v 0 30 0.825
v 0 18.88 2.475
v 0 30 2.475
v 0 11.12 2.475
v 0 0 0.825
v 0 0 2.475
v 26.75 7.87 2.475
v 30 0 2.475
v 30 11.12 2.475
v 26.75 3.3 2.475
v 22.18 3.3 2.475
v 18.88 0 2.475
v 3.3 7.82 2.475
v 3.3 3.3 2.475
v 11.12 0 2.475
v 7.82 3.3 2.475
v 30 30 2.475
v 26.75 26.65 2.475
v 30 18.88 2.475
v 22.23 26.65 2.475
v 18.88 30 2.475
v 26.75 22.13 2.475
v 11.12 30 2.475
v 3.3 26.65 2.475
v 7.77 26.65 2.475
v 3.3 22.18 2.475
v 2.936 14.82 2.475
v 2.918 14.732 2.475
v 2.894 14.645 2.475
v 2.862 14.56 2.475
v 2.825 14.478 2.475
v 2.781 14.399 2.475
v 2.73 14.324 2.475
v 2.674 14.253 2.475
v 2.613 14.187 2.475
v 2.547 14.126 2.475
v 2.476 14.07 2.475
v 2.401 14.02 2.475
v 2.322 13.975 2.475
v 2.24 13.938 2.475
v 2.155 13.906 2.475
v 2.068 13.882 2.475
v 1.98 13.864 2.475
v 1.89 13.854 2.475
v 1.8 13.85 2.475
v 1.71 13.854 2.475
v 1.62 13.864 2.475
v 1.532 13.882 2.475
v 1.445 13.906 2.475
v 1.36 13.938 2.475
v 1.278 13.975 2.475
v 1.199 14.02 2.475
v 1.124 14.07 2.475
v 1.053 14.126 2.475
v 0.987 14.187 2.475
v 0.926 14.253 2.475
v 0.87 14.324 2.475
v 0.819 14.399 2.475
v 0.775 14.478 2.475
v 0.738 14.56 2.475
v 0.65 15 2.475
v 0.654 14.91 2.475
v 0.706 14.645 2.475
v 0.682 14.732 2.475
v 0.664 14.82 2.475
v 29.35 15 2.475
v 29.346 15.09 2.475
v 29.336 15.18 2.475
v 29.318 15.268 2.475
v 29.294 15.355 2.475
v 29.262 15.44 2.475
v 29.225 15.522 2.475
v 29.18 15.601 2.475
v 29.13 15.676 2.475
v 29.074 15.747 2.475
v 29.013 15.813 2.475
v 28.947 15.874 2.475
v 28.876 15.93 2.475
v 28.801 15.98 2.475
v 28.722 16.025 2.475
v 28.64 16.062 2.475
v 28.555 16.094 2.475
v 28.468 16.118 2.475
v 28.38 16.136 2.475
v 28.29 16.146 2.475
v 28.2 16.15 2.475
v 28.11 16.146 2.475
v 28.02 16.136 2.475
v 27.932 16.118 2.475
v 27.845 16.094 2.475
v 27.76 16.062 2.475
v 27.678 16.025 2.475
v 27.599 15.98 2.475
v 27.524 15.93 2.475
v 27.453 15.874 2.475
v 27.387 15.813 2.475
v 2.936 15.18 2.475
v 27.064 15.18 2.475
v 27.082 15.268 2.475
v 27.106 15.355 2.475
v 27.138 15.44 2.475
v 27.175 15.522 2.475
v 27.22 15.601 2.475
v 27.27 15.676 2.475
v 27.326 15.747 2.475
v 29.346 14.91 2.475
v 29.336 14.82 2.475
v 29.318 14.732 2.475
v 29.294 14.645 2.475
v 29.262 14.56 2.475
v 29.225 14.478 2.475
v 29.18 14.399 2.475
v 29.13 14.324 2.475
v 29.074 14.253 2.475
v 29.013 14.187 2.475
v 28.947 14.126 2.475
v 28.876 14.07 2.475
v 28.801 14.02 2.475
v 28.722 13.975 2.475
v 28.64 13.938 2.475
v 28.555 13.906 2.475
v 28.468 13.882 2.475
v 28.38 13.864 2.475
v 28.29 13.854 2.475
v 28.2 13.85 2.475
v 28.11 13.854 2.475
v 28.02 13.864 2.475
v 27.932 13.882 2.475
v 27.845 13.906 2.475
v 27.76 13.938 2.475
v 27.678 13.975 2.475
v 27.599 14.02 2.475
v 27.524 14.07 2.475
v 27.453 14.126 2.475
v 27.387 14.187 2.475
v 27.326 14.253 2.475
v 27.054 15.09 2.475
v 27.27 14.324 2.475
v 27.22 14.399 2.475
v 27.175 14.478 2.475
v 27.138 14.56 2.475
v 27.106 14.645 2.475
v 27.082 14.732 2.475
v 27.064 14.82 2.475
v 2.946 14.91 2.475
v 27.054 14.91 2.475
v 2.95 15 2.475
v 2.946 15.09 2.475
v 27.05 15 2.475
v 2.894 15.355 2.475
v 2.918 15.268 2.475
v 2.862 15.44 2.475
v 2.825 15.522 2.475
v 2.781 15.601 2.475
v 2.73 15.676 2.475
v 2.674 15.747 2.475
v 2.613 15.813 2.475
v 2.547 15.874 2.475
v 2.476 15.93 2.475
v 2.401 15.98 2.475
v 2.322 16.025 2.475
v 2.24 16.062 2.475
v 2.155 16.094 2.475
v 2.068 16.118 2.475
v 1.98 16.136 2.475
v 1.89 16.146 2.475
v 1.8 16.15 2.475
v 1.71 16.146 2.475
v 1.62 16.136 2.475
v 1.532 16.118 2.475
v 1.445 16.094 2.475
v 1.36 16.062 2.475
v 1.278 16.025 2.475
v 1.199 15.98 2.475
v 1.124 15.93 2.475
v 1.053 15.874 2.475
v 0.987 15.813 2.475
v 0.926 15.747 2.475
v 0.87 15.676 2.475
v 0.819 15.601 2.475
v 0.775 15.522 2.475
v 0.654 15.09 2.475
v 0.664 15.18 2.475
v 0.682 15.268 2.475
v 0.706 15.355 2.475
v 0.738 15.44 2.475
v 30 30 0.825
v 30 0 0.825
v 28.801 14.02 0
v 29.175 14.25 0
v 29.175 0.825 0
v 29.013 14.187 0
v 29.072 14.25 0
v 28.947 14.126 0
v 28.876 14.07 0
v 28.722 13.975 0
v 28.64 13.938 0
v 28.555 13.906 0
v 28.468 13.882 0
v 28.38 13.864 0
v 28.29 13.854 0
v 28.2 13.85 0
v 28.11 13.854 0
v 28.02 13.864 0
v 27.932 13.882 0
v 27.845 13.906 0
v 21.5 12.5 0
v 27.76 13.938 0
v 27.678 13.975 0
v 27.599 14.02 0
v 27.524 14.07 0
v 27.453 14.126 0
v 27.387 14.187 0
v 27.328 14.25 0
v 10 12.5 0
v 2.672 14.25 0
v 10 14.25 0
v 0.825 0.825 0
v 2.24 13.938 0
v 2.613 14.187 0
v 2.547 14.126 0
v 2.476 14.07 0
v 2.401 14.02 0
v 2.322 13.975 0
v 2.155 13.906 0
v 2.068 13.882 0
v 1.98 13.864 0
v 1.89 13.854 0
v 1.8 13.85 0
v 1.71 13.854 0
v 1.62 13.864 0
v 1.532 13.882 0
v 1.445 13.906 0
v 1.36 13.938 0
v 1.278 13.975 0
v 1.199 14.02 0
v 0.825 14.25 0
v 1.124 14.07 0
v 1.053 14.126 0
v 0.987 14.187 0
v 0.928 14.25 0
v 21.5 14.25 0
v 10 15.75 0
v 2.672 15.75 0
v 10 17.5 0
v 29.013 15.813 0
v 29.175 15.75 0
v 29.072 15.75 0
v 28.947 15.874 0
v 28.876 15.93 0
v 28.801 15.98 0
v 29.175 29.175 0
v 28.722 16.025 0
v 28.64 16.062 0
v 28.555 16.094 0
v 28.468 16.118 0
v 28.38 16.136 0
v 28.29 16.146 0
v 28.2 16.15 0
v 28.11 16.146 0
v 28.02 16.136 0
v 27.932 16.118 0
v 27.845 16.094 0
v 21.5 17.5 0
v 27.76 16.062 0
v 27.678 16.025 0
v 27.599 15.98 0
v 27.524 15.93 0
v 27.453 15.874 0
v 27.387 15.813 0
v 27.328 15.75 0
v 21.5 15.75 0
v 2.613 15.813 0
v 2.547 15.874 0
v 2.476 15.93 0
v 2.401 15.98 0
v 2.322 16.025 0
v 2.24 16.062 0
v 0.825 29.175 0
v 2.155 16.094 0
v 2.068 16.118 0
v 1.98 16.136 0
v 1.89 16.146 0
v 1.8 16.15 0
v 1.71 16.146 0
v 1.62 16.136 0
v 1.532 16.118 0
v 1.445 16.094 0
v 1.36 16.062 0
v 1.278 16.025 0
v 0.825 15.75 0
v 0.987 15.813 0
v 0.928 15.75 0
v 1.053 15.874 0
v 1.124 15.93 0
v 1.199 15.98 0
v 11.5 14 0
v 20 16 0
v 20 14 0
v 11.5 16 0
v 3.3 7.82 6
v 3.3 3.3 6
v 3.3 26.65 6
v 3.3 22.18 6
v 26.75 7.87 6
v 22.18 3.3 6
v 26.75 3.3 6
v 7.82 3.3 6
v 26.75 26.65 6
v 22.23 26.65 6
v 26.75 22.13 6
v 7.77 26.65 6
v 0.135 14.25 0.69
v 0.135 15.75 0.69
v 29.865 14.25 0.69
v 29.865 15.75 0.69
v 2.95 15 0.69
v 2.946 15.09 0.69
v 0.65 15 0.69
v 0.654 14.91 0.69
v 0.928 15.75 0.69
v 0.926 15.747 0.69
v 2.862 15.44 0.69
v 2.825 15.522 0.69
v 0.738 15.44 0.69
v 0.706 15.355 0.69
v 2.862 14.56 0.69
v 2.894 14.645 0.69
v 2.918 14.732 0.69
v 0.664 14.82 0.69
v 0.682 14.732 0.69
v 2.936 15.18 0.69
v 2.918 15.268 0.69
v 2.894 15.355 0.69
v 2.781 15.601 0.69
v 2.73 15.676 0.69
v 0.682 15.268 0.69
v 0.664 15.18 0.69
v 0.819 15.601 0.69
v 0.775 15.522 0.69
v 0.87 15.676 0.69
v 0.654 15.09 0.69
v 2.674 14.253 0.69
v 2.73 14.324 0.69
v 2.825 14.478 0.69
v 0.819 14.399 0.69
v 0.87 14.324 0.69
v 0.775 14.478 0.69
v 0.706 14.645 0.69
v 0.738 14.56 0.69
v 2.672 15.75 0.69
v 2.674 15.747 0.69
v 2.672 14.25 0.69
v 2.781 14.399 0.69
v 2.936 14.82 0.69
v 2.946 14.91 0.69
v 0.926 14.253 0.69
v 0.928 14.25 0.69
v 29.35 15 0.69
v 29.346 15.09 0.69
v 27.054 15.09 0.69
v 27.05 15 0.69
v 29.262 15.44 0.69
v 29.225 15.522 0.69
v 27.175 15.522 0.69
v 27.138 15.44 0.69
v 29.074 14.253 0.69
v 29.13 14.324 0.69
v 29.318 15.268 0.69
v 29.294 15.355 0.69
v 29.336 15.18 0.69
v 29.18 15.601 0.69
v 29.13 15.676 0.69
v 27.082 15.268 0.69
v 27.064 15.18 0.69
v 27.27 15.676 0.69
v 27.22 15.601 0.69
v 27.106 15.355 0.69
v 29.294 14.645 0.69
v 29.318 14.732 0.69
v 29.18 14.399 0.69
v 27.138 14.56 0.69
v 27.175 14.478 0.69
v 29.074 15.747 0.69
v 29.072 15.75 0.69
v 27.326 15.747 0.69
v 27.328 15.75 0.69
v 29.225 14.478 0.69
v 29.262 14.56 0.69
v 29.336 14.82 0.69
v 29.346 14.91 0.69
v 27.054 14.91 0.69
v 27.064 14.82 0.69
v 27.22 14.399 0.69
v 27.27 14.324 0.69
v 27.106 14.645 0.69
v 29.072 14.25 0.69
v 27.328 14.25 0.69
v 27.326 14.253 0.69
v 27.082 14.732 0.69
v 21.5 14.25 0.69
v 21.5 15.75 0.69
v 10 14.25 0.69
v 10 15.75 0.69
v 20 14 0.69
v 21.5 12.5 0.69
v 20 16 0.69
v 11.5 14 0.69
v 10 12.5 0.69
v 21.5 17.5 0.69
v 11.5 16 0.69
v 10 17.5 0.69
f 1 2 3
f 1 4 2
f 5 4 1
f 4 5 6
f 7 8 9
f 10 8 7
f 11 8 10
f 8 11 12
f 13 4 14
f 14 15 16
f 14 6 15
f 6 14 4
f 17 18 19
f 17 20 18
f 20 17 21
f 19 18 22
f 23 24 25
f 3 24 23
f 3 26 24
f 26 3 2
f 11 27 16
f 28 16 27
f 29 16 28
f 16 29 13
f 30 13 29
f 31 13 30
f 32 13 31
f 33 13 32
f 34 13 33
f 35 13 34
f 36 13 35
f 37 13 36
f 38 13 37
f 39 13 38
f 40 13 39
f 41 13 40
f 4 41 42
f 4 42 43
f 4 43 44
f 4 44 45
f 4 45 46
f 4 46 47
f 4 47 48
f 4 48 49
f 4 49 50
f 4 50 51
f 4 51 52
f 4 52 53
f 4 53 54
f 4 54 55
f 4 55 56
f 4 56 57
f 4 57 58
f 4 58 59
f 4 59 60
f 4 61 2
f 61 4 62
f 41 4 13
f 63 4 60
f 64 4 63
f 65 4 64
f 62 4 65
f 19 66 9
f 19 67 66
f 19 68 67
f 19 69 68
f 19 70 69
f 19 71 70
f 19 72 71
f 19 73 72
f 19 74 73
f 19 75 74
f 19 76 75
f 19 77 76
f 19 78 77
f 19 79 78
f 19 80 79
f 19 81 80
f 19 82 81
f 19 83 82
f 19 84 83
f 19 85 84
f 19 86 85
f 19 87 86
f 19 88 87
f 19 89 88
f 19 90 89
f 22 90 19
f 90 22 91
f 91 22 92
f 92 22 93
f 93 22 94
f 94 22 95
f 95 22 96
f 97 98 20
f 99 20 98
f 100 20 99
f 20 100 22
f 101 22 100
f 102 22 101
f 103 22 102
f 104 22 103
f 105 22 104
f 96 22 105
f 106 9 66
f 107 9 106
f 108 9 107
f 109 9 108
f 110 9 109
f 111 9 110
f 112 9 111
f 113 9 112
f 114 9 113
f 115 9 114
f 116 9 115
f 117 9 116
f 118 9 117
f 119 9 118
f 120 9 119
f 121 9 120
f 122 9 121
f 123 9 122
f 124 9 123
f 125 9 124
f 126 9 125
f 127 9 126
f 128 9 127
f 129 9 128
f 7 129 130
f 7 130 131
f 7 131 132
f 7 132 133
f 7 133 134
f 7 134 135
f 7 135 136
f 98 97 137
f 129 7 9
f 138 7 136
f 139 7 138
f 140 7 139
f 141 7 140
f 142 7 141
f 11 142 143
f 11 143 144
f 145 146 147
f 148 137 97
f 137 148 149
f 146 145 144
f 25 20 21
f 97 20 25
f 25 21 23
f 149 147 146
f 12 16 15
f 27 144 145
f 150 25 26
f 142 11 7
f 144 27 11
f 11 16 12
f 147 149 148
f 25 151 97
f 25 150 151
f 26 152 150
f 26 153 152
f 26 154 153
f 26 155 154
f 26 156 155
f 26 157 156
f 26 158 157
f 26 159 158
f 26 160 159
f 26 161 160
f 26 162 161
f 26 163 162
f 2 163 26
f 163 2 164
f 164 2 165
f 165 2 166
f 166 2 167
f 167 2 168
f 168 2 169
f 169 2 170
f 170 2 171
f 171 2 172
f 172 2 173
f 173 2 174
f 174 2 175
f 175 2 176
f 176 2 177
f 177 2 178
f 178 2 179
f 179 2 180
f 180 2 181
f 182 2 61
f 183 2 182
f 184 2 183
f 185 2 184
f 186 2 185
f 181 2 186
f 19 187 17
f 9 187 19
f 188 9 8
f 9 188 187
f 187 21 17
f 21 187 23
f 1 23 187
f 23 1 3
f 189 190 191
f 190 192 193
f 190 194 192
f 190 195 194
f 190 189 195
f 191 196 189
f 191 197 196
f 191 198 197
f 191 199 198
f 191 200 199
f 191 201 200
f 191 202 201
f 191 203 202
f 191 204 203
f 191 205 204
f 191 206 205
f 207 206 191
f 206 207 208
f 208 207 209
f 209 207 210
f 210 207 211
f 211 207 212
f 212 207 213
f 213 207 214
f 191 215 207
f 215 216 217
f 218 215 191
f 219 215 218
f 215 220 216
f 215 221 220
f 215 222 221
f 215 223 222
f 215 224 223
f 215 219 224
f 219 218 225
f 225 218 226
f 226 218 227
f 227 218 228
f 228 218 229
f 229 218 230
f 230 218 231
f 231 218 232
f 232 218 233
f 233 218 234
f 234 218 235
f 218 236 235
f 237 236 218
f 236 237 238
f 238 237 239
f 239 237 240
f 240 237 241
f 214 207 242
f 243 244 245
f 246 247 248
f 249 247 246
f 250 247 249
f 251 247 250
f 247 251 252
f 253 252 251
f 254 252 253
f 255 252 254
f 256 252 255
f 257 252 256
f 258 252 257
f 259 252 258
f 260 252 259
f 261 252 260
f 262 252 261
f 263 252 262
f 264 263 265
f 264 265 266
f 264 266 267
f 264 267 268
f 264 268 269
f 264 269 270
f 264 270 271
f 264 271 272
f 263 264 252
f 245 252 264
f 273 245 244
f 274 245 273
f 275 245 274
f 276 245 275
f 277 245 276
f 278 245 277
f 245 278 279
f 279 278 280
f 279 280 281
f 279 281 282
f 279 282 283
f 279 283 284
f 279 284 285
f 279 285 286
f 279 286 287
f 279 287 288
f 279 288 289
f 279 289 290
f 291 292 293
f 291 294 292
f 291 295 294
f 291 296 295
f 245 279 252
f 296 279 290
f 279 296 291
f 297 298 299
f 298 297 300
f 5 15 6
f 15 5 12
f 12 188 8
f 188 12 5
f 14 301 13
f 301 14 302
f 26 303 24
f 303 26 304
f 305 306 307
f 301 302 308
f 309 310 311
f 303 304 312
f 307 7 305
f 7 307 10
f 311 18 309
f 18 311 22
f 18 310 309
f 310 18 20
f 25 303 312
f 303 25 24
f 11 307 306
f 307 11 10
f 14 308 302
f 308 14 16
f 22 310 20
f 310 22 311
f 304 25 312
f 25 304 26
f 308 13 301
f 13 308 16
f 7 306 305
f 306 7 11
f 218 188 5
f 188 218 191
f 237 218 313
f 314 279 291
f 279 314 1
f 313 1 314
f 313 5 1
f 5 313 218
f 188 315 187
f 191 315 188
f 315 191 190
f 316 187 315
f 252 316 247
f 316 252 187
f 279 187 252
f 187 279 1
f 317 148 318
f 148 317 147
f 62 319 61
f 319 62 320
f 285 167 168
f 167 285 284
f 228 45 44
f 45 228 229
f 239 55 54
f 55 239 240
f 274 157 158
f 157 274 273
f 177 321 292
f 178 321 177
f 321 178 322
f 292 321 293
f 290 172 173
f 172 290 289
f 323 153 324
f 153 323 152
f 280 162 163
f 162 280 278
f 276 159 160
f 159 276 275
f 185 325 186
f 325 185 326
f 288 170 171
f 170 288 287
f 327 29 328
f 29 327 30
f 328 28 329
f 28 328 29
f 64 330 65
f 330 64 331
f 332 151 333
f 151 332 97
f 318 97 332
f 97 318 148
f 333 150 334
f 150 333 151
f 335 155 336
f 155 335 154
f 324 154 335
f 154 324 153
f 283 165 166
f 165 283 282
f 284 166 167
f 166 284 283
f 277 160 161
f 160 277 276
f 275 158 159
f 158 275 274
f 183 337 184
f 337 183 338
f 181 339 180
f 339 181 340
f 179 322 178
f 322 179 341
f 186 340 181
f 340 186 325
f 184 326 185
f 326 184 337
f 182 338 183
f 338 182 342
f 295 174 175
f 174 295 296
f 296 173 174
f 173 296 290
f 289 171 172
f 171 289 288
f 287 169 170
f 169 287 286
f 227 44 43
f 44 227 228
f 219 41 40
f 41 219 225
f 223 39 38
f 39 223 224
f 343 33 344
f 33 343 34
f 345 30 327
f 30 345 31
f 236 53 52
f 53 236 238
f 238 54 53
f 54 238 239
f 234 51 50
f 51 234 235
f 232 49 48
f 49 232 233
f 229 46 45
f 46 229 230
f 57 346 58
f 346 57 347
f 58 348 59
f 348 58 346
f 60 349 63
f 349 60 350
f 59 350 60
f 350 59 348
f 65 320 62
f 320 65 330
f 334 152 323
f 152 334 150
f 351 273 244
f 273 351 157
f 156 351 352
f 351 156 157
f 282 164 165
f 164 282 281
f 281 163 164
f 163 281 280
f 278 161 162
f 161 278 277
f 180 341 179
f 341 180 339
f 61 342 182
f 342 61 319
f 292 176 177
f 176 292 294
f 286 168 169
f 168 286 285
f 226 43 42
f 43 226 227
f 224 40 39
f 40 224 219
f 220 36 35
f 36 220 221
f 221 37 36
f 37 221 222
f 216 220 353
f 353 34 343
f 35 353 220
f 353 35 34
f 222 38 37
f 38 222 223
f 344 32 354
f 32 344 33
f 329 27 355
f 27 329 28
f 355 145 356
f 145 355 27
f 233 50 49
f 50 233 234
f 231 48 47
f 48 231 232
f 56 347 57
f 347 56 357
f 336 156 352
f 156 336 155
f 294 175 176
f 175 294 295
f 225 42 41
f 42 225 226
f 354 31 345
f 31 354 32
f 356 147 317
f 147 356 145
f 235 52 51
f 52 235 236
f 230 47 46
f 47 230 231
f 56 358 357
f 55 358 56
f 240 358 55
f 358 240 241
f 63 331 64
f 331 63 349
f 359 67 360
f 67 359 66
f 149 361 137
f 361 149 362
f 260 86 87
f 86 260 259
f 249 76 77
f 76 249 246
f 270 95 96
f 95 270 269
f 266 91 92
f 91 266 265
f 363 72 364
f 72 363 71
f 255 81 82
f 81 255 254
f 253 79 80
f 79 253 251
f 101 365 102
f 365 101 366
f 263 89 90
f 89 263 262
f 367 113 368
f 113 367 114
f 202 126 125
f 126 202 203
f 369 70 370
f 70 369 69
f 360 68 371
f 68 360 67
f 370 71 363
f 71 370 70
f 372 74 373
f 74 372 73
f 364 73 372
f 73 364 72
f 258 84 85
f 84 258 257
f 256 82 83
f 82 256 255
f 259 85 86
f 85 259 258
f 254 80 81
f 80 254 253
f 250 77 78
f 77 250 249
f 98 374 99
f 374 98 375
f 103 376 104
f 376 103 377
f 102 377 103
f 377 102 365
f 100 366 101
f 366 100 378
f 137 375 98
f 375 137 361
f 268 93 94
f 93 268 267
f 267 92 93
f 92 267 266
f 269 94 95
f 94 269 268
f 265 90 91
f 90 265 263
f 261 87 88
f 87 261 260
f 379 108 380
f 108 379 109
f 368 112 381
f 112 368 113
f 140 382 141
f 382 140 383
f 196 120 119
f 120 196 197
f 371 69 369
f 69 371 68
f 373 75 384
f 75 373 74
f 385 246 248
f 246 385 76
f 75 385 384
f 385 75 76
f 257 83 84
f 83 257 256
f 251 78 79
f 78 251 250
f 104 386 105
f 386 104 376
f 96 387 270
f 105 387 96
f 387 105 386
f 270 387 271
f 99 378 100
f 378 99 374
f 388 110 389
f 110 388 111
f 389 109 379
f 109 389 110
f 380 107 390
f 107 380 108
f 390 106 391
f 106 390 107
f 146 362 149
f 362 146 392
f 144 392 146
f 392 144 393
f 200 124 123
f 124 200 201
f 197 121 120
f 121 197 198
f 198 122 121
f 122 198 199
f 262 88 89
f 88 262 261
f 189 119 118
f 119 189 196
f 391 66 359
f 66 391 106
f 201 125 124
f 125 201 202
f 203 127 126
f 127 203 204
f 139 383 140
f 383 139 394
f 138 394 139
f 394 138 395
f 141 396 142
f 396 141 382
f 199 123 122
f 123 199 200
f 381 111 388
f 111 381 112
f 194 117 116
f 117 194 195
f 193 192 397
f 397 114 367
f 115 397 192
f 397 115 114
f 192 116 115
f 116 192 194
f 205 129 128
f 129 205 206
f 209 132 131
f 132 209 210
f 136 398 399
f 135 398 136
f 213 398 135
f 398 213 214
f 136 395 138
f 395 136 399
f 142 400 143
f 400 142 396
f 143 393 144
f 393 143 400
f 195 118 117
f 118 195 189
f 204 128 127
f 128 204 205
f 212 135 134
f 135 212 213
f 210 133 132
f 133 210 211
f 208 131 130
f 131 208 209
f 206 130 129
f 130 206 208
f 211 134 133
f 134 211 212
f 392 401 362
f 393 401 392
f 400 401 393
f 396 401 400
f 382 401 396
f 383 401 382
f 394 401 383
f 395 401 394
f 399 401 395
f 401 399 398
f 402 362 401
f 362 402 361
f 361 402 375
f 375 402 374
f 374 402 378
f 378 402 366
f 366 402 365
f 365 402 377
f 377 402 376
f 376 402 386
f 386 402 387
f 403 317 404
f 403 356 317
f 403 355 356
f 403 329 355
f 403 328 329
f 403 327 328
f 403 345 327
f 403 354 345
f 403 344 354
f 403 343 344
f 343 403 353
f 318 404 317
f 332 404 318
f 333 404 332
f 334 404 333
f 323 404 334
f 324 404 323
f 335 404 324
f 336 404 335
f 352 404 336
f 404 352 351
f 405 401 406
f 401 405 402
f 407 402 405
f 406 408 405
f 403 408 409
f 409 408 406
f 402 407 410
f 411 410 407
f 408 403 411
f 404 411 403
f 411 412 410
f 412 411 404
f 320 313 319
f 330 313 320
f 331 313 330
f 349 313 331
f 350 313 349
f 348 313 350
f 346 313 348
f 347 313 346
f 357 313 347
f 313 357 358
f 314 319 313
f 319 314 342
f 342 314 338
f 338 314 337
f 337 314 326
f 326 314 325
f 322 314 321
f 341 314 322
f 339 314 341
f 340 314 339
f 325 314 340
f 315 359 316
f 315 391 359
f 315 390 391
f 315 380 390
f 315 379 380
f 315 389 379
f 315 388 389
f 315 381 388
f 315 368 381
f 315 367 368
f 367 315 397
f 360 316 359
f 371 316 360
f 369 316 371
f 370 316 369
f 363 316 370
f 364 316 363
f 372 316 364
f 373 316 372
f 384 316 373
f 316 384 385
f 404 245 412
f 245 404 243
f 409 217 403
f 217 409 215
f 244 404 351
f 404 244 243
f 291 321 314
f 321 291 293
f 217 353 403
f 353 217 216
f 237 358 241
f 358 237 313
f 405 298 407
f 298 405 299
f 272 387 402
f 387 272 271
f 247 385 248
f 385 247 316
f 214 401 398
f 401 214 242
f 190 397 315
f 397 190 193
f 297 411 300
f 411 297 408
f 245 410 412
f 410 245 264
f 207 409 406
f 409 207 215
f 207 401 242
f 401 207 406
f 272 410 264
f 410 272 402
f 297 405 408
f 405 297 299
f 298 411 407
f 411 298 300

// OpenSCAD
// file: settings.scad
cube_width=30;
cube_height=16;
cube_thickness=3.3;

cap_width=30;
cap_height=6;
cap_thickness=3.3;

glyph_depth=0.7;
glyph_thickness=1.5;

photo_resitor_hole_r = 3.1;
spring_contact_hole_r = 3.35;
// file: sym_resistor.scad
module resistor(length, width, thickness, height)
{
    translate([0,-thickness/2,0])cube([length/2-width, thickness, height]);
    translate([length/2+width,-thickness/2,0])cube([length/2-width, thickness, height]);
    
    translate([length/2-width,-width/2, 0])cube([thickness, width, height]);
    translate([length/2+width-thickness,-width/2,0])cube([thickness, width, height]);
    translate([length/2-width,-width/2, 0])cube([2*width, thickness, height]);
    translate([length/2-width, width/2-thickness, 0])cube([2*width, thickness, height]);
}

resistor(30, 8, 1, 1);
// file: cap_1x1.scad
include <settings.scad>

module cap_1x1(width, height, thickness, holes_mask)
{
    width1=width-thickness;
    difference()
    {
        union()
        {
            cube([width, width, thickness*3/4]);
            translate([thickness,thickness,0])cube([width-2*thickness, width-2*thickness, height]);
        }
        union()
        {
            translate([width/2,width/2,0])rotate([0,0,45])translate([-width1/2,-width1/2,thickness*3/4]) cube([width1,width1,height]);
                        //corners
            translate([0,0.25*thickness,0])rotate([45,0,0]) translate([-0.5*width, -width, -0.5*height]) cube([2*width, width, 2*height]);
            translate([0.25*thickness,0,0]) rotate([0,-45,0]) translate([-width, -0.5*width, -0.5*height]) cube([width, 2*width, 2*height]);
            translate([width-0.25*thickness,0,0]) rotate([0,45,0]) translate([0, 0, -0.5*height]) cube([width, 2*width, 2*height]);
            translate([0,width-0.25*thickness,0]) rotate([-45,0,0]) translate([-0.5*width, 0, -0.5*height]) cube([2*width, width, 2*height]);
            
            if (holes_mask >= 8)
            {
                translate([width/2, thickness-1.5, -0.5]) cylinder(r=1.15, h=height*1.5, $fn=80);
            }
            if ((holes_mask%8) >= 4)
            {
                translate([width/2, width-thickness+1.5, -0.5]) cylinder(r=1.15, h=height*1.5, $fn=80);
            }
            if ((holes_mask%4)>= 2)
            {
                translate([thickness-1.5, width/2, -0.5]) cylinder(r=1.15, h=height*1.5, $fn=80);
            }
            if (holes_mask%2 >= 1)
            {
                translate([width-thickness+1.5, width/2, -0.5]) cylinder(r=1.15, h=height*1.5, $fn=80);
            }
        }
    }
}

cap_1x1(cap_width, cap_height, cap_thickness, 9);
//ring(10,1,1);
//arrow(1, 20, 3, 1);
//transistor_npn(30, 1, 1);
// main file
use <cap_1x1.scad>
use <sym_resistor.scad>
include <settings.scad>

module cap_1x1_resistor(width, height, thickness)
{
    difference()
    {
        cap_1x1(width, height, thickness, 3);
        translate([0,width/2,-0.01])resistor(width, width/6, glyph_thickness, glyph_depth);
    }
}

cap_1x1_resistor(cap_width, cap_height, cap_thickness);
